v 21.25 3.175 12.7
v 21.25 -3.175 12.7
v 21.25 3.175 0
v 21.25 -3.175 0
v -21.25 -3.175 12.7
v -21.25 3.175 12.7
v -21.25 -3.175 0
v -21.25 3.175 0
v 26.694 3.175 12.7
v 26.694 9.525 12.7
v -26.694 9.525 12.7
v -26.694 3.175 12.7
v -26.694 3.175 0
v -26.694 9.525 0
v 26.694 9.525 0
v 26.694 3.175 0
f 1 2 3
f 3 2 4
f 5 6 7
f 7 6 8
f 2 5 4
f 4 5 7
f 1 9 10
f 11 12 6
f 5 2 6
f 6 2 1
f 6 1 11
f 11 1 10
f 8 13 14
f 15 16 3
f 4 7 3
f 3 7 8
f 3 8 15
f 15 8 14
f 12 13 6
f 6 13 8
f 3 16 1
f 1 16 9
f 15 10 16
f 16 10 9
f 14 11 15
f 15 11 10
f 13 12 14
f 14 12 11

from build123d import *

# Parameters (mm, degrees)
SKETCH1_W           = 42.5
SKETCH1_H           = 6.35
BOSS_EXTRUDE1_DEPTH = 12.7
SKETCH2_W           = 53.3875
SKETCH2_H           = 6.35
BOSS_EXTRUDE2_DEPTH = 12.7


with BuildPart() as part:
    # Sketch1 → Boss-Extrude1 (new body)
    with BuildSketch(Plane.XY):
        Rectangle(SKETCH1_W, SKETCH1_H)
    extrude(amount=BOSS_EXTRUDE1_DEPTH)

    # Sketch2 → Boss-Extrude2 (add)
    with BuildSketch(Plane.XY.offset(12.7)):
        with Locations((0, 6.35)):
            Rectangle(SKETCH2_W, SKETCH2_H)
    extrude(amount=-BOSS_EXTRUDE2_DEPTH)


solid = part.part
